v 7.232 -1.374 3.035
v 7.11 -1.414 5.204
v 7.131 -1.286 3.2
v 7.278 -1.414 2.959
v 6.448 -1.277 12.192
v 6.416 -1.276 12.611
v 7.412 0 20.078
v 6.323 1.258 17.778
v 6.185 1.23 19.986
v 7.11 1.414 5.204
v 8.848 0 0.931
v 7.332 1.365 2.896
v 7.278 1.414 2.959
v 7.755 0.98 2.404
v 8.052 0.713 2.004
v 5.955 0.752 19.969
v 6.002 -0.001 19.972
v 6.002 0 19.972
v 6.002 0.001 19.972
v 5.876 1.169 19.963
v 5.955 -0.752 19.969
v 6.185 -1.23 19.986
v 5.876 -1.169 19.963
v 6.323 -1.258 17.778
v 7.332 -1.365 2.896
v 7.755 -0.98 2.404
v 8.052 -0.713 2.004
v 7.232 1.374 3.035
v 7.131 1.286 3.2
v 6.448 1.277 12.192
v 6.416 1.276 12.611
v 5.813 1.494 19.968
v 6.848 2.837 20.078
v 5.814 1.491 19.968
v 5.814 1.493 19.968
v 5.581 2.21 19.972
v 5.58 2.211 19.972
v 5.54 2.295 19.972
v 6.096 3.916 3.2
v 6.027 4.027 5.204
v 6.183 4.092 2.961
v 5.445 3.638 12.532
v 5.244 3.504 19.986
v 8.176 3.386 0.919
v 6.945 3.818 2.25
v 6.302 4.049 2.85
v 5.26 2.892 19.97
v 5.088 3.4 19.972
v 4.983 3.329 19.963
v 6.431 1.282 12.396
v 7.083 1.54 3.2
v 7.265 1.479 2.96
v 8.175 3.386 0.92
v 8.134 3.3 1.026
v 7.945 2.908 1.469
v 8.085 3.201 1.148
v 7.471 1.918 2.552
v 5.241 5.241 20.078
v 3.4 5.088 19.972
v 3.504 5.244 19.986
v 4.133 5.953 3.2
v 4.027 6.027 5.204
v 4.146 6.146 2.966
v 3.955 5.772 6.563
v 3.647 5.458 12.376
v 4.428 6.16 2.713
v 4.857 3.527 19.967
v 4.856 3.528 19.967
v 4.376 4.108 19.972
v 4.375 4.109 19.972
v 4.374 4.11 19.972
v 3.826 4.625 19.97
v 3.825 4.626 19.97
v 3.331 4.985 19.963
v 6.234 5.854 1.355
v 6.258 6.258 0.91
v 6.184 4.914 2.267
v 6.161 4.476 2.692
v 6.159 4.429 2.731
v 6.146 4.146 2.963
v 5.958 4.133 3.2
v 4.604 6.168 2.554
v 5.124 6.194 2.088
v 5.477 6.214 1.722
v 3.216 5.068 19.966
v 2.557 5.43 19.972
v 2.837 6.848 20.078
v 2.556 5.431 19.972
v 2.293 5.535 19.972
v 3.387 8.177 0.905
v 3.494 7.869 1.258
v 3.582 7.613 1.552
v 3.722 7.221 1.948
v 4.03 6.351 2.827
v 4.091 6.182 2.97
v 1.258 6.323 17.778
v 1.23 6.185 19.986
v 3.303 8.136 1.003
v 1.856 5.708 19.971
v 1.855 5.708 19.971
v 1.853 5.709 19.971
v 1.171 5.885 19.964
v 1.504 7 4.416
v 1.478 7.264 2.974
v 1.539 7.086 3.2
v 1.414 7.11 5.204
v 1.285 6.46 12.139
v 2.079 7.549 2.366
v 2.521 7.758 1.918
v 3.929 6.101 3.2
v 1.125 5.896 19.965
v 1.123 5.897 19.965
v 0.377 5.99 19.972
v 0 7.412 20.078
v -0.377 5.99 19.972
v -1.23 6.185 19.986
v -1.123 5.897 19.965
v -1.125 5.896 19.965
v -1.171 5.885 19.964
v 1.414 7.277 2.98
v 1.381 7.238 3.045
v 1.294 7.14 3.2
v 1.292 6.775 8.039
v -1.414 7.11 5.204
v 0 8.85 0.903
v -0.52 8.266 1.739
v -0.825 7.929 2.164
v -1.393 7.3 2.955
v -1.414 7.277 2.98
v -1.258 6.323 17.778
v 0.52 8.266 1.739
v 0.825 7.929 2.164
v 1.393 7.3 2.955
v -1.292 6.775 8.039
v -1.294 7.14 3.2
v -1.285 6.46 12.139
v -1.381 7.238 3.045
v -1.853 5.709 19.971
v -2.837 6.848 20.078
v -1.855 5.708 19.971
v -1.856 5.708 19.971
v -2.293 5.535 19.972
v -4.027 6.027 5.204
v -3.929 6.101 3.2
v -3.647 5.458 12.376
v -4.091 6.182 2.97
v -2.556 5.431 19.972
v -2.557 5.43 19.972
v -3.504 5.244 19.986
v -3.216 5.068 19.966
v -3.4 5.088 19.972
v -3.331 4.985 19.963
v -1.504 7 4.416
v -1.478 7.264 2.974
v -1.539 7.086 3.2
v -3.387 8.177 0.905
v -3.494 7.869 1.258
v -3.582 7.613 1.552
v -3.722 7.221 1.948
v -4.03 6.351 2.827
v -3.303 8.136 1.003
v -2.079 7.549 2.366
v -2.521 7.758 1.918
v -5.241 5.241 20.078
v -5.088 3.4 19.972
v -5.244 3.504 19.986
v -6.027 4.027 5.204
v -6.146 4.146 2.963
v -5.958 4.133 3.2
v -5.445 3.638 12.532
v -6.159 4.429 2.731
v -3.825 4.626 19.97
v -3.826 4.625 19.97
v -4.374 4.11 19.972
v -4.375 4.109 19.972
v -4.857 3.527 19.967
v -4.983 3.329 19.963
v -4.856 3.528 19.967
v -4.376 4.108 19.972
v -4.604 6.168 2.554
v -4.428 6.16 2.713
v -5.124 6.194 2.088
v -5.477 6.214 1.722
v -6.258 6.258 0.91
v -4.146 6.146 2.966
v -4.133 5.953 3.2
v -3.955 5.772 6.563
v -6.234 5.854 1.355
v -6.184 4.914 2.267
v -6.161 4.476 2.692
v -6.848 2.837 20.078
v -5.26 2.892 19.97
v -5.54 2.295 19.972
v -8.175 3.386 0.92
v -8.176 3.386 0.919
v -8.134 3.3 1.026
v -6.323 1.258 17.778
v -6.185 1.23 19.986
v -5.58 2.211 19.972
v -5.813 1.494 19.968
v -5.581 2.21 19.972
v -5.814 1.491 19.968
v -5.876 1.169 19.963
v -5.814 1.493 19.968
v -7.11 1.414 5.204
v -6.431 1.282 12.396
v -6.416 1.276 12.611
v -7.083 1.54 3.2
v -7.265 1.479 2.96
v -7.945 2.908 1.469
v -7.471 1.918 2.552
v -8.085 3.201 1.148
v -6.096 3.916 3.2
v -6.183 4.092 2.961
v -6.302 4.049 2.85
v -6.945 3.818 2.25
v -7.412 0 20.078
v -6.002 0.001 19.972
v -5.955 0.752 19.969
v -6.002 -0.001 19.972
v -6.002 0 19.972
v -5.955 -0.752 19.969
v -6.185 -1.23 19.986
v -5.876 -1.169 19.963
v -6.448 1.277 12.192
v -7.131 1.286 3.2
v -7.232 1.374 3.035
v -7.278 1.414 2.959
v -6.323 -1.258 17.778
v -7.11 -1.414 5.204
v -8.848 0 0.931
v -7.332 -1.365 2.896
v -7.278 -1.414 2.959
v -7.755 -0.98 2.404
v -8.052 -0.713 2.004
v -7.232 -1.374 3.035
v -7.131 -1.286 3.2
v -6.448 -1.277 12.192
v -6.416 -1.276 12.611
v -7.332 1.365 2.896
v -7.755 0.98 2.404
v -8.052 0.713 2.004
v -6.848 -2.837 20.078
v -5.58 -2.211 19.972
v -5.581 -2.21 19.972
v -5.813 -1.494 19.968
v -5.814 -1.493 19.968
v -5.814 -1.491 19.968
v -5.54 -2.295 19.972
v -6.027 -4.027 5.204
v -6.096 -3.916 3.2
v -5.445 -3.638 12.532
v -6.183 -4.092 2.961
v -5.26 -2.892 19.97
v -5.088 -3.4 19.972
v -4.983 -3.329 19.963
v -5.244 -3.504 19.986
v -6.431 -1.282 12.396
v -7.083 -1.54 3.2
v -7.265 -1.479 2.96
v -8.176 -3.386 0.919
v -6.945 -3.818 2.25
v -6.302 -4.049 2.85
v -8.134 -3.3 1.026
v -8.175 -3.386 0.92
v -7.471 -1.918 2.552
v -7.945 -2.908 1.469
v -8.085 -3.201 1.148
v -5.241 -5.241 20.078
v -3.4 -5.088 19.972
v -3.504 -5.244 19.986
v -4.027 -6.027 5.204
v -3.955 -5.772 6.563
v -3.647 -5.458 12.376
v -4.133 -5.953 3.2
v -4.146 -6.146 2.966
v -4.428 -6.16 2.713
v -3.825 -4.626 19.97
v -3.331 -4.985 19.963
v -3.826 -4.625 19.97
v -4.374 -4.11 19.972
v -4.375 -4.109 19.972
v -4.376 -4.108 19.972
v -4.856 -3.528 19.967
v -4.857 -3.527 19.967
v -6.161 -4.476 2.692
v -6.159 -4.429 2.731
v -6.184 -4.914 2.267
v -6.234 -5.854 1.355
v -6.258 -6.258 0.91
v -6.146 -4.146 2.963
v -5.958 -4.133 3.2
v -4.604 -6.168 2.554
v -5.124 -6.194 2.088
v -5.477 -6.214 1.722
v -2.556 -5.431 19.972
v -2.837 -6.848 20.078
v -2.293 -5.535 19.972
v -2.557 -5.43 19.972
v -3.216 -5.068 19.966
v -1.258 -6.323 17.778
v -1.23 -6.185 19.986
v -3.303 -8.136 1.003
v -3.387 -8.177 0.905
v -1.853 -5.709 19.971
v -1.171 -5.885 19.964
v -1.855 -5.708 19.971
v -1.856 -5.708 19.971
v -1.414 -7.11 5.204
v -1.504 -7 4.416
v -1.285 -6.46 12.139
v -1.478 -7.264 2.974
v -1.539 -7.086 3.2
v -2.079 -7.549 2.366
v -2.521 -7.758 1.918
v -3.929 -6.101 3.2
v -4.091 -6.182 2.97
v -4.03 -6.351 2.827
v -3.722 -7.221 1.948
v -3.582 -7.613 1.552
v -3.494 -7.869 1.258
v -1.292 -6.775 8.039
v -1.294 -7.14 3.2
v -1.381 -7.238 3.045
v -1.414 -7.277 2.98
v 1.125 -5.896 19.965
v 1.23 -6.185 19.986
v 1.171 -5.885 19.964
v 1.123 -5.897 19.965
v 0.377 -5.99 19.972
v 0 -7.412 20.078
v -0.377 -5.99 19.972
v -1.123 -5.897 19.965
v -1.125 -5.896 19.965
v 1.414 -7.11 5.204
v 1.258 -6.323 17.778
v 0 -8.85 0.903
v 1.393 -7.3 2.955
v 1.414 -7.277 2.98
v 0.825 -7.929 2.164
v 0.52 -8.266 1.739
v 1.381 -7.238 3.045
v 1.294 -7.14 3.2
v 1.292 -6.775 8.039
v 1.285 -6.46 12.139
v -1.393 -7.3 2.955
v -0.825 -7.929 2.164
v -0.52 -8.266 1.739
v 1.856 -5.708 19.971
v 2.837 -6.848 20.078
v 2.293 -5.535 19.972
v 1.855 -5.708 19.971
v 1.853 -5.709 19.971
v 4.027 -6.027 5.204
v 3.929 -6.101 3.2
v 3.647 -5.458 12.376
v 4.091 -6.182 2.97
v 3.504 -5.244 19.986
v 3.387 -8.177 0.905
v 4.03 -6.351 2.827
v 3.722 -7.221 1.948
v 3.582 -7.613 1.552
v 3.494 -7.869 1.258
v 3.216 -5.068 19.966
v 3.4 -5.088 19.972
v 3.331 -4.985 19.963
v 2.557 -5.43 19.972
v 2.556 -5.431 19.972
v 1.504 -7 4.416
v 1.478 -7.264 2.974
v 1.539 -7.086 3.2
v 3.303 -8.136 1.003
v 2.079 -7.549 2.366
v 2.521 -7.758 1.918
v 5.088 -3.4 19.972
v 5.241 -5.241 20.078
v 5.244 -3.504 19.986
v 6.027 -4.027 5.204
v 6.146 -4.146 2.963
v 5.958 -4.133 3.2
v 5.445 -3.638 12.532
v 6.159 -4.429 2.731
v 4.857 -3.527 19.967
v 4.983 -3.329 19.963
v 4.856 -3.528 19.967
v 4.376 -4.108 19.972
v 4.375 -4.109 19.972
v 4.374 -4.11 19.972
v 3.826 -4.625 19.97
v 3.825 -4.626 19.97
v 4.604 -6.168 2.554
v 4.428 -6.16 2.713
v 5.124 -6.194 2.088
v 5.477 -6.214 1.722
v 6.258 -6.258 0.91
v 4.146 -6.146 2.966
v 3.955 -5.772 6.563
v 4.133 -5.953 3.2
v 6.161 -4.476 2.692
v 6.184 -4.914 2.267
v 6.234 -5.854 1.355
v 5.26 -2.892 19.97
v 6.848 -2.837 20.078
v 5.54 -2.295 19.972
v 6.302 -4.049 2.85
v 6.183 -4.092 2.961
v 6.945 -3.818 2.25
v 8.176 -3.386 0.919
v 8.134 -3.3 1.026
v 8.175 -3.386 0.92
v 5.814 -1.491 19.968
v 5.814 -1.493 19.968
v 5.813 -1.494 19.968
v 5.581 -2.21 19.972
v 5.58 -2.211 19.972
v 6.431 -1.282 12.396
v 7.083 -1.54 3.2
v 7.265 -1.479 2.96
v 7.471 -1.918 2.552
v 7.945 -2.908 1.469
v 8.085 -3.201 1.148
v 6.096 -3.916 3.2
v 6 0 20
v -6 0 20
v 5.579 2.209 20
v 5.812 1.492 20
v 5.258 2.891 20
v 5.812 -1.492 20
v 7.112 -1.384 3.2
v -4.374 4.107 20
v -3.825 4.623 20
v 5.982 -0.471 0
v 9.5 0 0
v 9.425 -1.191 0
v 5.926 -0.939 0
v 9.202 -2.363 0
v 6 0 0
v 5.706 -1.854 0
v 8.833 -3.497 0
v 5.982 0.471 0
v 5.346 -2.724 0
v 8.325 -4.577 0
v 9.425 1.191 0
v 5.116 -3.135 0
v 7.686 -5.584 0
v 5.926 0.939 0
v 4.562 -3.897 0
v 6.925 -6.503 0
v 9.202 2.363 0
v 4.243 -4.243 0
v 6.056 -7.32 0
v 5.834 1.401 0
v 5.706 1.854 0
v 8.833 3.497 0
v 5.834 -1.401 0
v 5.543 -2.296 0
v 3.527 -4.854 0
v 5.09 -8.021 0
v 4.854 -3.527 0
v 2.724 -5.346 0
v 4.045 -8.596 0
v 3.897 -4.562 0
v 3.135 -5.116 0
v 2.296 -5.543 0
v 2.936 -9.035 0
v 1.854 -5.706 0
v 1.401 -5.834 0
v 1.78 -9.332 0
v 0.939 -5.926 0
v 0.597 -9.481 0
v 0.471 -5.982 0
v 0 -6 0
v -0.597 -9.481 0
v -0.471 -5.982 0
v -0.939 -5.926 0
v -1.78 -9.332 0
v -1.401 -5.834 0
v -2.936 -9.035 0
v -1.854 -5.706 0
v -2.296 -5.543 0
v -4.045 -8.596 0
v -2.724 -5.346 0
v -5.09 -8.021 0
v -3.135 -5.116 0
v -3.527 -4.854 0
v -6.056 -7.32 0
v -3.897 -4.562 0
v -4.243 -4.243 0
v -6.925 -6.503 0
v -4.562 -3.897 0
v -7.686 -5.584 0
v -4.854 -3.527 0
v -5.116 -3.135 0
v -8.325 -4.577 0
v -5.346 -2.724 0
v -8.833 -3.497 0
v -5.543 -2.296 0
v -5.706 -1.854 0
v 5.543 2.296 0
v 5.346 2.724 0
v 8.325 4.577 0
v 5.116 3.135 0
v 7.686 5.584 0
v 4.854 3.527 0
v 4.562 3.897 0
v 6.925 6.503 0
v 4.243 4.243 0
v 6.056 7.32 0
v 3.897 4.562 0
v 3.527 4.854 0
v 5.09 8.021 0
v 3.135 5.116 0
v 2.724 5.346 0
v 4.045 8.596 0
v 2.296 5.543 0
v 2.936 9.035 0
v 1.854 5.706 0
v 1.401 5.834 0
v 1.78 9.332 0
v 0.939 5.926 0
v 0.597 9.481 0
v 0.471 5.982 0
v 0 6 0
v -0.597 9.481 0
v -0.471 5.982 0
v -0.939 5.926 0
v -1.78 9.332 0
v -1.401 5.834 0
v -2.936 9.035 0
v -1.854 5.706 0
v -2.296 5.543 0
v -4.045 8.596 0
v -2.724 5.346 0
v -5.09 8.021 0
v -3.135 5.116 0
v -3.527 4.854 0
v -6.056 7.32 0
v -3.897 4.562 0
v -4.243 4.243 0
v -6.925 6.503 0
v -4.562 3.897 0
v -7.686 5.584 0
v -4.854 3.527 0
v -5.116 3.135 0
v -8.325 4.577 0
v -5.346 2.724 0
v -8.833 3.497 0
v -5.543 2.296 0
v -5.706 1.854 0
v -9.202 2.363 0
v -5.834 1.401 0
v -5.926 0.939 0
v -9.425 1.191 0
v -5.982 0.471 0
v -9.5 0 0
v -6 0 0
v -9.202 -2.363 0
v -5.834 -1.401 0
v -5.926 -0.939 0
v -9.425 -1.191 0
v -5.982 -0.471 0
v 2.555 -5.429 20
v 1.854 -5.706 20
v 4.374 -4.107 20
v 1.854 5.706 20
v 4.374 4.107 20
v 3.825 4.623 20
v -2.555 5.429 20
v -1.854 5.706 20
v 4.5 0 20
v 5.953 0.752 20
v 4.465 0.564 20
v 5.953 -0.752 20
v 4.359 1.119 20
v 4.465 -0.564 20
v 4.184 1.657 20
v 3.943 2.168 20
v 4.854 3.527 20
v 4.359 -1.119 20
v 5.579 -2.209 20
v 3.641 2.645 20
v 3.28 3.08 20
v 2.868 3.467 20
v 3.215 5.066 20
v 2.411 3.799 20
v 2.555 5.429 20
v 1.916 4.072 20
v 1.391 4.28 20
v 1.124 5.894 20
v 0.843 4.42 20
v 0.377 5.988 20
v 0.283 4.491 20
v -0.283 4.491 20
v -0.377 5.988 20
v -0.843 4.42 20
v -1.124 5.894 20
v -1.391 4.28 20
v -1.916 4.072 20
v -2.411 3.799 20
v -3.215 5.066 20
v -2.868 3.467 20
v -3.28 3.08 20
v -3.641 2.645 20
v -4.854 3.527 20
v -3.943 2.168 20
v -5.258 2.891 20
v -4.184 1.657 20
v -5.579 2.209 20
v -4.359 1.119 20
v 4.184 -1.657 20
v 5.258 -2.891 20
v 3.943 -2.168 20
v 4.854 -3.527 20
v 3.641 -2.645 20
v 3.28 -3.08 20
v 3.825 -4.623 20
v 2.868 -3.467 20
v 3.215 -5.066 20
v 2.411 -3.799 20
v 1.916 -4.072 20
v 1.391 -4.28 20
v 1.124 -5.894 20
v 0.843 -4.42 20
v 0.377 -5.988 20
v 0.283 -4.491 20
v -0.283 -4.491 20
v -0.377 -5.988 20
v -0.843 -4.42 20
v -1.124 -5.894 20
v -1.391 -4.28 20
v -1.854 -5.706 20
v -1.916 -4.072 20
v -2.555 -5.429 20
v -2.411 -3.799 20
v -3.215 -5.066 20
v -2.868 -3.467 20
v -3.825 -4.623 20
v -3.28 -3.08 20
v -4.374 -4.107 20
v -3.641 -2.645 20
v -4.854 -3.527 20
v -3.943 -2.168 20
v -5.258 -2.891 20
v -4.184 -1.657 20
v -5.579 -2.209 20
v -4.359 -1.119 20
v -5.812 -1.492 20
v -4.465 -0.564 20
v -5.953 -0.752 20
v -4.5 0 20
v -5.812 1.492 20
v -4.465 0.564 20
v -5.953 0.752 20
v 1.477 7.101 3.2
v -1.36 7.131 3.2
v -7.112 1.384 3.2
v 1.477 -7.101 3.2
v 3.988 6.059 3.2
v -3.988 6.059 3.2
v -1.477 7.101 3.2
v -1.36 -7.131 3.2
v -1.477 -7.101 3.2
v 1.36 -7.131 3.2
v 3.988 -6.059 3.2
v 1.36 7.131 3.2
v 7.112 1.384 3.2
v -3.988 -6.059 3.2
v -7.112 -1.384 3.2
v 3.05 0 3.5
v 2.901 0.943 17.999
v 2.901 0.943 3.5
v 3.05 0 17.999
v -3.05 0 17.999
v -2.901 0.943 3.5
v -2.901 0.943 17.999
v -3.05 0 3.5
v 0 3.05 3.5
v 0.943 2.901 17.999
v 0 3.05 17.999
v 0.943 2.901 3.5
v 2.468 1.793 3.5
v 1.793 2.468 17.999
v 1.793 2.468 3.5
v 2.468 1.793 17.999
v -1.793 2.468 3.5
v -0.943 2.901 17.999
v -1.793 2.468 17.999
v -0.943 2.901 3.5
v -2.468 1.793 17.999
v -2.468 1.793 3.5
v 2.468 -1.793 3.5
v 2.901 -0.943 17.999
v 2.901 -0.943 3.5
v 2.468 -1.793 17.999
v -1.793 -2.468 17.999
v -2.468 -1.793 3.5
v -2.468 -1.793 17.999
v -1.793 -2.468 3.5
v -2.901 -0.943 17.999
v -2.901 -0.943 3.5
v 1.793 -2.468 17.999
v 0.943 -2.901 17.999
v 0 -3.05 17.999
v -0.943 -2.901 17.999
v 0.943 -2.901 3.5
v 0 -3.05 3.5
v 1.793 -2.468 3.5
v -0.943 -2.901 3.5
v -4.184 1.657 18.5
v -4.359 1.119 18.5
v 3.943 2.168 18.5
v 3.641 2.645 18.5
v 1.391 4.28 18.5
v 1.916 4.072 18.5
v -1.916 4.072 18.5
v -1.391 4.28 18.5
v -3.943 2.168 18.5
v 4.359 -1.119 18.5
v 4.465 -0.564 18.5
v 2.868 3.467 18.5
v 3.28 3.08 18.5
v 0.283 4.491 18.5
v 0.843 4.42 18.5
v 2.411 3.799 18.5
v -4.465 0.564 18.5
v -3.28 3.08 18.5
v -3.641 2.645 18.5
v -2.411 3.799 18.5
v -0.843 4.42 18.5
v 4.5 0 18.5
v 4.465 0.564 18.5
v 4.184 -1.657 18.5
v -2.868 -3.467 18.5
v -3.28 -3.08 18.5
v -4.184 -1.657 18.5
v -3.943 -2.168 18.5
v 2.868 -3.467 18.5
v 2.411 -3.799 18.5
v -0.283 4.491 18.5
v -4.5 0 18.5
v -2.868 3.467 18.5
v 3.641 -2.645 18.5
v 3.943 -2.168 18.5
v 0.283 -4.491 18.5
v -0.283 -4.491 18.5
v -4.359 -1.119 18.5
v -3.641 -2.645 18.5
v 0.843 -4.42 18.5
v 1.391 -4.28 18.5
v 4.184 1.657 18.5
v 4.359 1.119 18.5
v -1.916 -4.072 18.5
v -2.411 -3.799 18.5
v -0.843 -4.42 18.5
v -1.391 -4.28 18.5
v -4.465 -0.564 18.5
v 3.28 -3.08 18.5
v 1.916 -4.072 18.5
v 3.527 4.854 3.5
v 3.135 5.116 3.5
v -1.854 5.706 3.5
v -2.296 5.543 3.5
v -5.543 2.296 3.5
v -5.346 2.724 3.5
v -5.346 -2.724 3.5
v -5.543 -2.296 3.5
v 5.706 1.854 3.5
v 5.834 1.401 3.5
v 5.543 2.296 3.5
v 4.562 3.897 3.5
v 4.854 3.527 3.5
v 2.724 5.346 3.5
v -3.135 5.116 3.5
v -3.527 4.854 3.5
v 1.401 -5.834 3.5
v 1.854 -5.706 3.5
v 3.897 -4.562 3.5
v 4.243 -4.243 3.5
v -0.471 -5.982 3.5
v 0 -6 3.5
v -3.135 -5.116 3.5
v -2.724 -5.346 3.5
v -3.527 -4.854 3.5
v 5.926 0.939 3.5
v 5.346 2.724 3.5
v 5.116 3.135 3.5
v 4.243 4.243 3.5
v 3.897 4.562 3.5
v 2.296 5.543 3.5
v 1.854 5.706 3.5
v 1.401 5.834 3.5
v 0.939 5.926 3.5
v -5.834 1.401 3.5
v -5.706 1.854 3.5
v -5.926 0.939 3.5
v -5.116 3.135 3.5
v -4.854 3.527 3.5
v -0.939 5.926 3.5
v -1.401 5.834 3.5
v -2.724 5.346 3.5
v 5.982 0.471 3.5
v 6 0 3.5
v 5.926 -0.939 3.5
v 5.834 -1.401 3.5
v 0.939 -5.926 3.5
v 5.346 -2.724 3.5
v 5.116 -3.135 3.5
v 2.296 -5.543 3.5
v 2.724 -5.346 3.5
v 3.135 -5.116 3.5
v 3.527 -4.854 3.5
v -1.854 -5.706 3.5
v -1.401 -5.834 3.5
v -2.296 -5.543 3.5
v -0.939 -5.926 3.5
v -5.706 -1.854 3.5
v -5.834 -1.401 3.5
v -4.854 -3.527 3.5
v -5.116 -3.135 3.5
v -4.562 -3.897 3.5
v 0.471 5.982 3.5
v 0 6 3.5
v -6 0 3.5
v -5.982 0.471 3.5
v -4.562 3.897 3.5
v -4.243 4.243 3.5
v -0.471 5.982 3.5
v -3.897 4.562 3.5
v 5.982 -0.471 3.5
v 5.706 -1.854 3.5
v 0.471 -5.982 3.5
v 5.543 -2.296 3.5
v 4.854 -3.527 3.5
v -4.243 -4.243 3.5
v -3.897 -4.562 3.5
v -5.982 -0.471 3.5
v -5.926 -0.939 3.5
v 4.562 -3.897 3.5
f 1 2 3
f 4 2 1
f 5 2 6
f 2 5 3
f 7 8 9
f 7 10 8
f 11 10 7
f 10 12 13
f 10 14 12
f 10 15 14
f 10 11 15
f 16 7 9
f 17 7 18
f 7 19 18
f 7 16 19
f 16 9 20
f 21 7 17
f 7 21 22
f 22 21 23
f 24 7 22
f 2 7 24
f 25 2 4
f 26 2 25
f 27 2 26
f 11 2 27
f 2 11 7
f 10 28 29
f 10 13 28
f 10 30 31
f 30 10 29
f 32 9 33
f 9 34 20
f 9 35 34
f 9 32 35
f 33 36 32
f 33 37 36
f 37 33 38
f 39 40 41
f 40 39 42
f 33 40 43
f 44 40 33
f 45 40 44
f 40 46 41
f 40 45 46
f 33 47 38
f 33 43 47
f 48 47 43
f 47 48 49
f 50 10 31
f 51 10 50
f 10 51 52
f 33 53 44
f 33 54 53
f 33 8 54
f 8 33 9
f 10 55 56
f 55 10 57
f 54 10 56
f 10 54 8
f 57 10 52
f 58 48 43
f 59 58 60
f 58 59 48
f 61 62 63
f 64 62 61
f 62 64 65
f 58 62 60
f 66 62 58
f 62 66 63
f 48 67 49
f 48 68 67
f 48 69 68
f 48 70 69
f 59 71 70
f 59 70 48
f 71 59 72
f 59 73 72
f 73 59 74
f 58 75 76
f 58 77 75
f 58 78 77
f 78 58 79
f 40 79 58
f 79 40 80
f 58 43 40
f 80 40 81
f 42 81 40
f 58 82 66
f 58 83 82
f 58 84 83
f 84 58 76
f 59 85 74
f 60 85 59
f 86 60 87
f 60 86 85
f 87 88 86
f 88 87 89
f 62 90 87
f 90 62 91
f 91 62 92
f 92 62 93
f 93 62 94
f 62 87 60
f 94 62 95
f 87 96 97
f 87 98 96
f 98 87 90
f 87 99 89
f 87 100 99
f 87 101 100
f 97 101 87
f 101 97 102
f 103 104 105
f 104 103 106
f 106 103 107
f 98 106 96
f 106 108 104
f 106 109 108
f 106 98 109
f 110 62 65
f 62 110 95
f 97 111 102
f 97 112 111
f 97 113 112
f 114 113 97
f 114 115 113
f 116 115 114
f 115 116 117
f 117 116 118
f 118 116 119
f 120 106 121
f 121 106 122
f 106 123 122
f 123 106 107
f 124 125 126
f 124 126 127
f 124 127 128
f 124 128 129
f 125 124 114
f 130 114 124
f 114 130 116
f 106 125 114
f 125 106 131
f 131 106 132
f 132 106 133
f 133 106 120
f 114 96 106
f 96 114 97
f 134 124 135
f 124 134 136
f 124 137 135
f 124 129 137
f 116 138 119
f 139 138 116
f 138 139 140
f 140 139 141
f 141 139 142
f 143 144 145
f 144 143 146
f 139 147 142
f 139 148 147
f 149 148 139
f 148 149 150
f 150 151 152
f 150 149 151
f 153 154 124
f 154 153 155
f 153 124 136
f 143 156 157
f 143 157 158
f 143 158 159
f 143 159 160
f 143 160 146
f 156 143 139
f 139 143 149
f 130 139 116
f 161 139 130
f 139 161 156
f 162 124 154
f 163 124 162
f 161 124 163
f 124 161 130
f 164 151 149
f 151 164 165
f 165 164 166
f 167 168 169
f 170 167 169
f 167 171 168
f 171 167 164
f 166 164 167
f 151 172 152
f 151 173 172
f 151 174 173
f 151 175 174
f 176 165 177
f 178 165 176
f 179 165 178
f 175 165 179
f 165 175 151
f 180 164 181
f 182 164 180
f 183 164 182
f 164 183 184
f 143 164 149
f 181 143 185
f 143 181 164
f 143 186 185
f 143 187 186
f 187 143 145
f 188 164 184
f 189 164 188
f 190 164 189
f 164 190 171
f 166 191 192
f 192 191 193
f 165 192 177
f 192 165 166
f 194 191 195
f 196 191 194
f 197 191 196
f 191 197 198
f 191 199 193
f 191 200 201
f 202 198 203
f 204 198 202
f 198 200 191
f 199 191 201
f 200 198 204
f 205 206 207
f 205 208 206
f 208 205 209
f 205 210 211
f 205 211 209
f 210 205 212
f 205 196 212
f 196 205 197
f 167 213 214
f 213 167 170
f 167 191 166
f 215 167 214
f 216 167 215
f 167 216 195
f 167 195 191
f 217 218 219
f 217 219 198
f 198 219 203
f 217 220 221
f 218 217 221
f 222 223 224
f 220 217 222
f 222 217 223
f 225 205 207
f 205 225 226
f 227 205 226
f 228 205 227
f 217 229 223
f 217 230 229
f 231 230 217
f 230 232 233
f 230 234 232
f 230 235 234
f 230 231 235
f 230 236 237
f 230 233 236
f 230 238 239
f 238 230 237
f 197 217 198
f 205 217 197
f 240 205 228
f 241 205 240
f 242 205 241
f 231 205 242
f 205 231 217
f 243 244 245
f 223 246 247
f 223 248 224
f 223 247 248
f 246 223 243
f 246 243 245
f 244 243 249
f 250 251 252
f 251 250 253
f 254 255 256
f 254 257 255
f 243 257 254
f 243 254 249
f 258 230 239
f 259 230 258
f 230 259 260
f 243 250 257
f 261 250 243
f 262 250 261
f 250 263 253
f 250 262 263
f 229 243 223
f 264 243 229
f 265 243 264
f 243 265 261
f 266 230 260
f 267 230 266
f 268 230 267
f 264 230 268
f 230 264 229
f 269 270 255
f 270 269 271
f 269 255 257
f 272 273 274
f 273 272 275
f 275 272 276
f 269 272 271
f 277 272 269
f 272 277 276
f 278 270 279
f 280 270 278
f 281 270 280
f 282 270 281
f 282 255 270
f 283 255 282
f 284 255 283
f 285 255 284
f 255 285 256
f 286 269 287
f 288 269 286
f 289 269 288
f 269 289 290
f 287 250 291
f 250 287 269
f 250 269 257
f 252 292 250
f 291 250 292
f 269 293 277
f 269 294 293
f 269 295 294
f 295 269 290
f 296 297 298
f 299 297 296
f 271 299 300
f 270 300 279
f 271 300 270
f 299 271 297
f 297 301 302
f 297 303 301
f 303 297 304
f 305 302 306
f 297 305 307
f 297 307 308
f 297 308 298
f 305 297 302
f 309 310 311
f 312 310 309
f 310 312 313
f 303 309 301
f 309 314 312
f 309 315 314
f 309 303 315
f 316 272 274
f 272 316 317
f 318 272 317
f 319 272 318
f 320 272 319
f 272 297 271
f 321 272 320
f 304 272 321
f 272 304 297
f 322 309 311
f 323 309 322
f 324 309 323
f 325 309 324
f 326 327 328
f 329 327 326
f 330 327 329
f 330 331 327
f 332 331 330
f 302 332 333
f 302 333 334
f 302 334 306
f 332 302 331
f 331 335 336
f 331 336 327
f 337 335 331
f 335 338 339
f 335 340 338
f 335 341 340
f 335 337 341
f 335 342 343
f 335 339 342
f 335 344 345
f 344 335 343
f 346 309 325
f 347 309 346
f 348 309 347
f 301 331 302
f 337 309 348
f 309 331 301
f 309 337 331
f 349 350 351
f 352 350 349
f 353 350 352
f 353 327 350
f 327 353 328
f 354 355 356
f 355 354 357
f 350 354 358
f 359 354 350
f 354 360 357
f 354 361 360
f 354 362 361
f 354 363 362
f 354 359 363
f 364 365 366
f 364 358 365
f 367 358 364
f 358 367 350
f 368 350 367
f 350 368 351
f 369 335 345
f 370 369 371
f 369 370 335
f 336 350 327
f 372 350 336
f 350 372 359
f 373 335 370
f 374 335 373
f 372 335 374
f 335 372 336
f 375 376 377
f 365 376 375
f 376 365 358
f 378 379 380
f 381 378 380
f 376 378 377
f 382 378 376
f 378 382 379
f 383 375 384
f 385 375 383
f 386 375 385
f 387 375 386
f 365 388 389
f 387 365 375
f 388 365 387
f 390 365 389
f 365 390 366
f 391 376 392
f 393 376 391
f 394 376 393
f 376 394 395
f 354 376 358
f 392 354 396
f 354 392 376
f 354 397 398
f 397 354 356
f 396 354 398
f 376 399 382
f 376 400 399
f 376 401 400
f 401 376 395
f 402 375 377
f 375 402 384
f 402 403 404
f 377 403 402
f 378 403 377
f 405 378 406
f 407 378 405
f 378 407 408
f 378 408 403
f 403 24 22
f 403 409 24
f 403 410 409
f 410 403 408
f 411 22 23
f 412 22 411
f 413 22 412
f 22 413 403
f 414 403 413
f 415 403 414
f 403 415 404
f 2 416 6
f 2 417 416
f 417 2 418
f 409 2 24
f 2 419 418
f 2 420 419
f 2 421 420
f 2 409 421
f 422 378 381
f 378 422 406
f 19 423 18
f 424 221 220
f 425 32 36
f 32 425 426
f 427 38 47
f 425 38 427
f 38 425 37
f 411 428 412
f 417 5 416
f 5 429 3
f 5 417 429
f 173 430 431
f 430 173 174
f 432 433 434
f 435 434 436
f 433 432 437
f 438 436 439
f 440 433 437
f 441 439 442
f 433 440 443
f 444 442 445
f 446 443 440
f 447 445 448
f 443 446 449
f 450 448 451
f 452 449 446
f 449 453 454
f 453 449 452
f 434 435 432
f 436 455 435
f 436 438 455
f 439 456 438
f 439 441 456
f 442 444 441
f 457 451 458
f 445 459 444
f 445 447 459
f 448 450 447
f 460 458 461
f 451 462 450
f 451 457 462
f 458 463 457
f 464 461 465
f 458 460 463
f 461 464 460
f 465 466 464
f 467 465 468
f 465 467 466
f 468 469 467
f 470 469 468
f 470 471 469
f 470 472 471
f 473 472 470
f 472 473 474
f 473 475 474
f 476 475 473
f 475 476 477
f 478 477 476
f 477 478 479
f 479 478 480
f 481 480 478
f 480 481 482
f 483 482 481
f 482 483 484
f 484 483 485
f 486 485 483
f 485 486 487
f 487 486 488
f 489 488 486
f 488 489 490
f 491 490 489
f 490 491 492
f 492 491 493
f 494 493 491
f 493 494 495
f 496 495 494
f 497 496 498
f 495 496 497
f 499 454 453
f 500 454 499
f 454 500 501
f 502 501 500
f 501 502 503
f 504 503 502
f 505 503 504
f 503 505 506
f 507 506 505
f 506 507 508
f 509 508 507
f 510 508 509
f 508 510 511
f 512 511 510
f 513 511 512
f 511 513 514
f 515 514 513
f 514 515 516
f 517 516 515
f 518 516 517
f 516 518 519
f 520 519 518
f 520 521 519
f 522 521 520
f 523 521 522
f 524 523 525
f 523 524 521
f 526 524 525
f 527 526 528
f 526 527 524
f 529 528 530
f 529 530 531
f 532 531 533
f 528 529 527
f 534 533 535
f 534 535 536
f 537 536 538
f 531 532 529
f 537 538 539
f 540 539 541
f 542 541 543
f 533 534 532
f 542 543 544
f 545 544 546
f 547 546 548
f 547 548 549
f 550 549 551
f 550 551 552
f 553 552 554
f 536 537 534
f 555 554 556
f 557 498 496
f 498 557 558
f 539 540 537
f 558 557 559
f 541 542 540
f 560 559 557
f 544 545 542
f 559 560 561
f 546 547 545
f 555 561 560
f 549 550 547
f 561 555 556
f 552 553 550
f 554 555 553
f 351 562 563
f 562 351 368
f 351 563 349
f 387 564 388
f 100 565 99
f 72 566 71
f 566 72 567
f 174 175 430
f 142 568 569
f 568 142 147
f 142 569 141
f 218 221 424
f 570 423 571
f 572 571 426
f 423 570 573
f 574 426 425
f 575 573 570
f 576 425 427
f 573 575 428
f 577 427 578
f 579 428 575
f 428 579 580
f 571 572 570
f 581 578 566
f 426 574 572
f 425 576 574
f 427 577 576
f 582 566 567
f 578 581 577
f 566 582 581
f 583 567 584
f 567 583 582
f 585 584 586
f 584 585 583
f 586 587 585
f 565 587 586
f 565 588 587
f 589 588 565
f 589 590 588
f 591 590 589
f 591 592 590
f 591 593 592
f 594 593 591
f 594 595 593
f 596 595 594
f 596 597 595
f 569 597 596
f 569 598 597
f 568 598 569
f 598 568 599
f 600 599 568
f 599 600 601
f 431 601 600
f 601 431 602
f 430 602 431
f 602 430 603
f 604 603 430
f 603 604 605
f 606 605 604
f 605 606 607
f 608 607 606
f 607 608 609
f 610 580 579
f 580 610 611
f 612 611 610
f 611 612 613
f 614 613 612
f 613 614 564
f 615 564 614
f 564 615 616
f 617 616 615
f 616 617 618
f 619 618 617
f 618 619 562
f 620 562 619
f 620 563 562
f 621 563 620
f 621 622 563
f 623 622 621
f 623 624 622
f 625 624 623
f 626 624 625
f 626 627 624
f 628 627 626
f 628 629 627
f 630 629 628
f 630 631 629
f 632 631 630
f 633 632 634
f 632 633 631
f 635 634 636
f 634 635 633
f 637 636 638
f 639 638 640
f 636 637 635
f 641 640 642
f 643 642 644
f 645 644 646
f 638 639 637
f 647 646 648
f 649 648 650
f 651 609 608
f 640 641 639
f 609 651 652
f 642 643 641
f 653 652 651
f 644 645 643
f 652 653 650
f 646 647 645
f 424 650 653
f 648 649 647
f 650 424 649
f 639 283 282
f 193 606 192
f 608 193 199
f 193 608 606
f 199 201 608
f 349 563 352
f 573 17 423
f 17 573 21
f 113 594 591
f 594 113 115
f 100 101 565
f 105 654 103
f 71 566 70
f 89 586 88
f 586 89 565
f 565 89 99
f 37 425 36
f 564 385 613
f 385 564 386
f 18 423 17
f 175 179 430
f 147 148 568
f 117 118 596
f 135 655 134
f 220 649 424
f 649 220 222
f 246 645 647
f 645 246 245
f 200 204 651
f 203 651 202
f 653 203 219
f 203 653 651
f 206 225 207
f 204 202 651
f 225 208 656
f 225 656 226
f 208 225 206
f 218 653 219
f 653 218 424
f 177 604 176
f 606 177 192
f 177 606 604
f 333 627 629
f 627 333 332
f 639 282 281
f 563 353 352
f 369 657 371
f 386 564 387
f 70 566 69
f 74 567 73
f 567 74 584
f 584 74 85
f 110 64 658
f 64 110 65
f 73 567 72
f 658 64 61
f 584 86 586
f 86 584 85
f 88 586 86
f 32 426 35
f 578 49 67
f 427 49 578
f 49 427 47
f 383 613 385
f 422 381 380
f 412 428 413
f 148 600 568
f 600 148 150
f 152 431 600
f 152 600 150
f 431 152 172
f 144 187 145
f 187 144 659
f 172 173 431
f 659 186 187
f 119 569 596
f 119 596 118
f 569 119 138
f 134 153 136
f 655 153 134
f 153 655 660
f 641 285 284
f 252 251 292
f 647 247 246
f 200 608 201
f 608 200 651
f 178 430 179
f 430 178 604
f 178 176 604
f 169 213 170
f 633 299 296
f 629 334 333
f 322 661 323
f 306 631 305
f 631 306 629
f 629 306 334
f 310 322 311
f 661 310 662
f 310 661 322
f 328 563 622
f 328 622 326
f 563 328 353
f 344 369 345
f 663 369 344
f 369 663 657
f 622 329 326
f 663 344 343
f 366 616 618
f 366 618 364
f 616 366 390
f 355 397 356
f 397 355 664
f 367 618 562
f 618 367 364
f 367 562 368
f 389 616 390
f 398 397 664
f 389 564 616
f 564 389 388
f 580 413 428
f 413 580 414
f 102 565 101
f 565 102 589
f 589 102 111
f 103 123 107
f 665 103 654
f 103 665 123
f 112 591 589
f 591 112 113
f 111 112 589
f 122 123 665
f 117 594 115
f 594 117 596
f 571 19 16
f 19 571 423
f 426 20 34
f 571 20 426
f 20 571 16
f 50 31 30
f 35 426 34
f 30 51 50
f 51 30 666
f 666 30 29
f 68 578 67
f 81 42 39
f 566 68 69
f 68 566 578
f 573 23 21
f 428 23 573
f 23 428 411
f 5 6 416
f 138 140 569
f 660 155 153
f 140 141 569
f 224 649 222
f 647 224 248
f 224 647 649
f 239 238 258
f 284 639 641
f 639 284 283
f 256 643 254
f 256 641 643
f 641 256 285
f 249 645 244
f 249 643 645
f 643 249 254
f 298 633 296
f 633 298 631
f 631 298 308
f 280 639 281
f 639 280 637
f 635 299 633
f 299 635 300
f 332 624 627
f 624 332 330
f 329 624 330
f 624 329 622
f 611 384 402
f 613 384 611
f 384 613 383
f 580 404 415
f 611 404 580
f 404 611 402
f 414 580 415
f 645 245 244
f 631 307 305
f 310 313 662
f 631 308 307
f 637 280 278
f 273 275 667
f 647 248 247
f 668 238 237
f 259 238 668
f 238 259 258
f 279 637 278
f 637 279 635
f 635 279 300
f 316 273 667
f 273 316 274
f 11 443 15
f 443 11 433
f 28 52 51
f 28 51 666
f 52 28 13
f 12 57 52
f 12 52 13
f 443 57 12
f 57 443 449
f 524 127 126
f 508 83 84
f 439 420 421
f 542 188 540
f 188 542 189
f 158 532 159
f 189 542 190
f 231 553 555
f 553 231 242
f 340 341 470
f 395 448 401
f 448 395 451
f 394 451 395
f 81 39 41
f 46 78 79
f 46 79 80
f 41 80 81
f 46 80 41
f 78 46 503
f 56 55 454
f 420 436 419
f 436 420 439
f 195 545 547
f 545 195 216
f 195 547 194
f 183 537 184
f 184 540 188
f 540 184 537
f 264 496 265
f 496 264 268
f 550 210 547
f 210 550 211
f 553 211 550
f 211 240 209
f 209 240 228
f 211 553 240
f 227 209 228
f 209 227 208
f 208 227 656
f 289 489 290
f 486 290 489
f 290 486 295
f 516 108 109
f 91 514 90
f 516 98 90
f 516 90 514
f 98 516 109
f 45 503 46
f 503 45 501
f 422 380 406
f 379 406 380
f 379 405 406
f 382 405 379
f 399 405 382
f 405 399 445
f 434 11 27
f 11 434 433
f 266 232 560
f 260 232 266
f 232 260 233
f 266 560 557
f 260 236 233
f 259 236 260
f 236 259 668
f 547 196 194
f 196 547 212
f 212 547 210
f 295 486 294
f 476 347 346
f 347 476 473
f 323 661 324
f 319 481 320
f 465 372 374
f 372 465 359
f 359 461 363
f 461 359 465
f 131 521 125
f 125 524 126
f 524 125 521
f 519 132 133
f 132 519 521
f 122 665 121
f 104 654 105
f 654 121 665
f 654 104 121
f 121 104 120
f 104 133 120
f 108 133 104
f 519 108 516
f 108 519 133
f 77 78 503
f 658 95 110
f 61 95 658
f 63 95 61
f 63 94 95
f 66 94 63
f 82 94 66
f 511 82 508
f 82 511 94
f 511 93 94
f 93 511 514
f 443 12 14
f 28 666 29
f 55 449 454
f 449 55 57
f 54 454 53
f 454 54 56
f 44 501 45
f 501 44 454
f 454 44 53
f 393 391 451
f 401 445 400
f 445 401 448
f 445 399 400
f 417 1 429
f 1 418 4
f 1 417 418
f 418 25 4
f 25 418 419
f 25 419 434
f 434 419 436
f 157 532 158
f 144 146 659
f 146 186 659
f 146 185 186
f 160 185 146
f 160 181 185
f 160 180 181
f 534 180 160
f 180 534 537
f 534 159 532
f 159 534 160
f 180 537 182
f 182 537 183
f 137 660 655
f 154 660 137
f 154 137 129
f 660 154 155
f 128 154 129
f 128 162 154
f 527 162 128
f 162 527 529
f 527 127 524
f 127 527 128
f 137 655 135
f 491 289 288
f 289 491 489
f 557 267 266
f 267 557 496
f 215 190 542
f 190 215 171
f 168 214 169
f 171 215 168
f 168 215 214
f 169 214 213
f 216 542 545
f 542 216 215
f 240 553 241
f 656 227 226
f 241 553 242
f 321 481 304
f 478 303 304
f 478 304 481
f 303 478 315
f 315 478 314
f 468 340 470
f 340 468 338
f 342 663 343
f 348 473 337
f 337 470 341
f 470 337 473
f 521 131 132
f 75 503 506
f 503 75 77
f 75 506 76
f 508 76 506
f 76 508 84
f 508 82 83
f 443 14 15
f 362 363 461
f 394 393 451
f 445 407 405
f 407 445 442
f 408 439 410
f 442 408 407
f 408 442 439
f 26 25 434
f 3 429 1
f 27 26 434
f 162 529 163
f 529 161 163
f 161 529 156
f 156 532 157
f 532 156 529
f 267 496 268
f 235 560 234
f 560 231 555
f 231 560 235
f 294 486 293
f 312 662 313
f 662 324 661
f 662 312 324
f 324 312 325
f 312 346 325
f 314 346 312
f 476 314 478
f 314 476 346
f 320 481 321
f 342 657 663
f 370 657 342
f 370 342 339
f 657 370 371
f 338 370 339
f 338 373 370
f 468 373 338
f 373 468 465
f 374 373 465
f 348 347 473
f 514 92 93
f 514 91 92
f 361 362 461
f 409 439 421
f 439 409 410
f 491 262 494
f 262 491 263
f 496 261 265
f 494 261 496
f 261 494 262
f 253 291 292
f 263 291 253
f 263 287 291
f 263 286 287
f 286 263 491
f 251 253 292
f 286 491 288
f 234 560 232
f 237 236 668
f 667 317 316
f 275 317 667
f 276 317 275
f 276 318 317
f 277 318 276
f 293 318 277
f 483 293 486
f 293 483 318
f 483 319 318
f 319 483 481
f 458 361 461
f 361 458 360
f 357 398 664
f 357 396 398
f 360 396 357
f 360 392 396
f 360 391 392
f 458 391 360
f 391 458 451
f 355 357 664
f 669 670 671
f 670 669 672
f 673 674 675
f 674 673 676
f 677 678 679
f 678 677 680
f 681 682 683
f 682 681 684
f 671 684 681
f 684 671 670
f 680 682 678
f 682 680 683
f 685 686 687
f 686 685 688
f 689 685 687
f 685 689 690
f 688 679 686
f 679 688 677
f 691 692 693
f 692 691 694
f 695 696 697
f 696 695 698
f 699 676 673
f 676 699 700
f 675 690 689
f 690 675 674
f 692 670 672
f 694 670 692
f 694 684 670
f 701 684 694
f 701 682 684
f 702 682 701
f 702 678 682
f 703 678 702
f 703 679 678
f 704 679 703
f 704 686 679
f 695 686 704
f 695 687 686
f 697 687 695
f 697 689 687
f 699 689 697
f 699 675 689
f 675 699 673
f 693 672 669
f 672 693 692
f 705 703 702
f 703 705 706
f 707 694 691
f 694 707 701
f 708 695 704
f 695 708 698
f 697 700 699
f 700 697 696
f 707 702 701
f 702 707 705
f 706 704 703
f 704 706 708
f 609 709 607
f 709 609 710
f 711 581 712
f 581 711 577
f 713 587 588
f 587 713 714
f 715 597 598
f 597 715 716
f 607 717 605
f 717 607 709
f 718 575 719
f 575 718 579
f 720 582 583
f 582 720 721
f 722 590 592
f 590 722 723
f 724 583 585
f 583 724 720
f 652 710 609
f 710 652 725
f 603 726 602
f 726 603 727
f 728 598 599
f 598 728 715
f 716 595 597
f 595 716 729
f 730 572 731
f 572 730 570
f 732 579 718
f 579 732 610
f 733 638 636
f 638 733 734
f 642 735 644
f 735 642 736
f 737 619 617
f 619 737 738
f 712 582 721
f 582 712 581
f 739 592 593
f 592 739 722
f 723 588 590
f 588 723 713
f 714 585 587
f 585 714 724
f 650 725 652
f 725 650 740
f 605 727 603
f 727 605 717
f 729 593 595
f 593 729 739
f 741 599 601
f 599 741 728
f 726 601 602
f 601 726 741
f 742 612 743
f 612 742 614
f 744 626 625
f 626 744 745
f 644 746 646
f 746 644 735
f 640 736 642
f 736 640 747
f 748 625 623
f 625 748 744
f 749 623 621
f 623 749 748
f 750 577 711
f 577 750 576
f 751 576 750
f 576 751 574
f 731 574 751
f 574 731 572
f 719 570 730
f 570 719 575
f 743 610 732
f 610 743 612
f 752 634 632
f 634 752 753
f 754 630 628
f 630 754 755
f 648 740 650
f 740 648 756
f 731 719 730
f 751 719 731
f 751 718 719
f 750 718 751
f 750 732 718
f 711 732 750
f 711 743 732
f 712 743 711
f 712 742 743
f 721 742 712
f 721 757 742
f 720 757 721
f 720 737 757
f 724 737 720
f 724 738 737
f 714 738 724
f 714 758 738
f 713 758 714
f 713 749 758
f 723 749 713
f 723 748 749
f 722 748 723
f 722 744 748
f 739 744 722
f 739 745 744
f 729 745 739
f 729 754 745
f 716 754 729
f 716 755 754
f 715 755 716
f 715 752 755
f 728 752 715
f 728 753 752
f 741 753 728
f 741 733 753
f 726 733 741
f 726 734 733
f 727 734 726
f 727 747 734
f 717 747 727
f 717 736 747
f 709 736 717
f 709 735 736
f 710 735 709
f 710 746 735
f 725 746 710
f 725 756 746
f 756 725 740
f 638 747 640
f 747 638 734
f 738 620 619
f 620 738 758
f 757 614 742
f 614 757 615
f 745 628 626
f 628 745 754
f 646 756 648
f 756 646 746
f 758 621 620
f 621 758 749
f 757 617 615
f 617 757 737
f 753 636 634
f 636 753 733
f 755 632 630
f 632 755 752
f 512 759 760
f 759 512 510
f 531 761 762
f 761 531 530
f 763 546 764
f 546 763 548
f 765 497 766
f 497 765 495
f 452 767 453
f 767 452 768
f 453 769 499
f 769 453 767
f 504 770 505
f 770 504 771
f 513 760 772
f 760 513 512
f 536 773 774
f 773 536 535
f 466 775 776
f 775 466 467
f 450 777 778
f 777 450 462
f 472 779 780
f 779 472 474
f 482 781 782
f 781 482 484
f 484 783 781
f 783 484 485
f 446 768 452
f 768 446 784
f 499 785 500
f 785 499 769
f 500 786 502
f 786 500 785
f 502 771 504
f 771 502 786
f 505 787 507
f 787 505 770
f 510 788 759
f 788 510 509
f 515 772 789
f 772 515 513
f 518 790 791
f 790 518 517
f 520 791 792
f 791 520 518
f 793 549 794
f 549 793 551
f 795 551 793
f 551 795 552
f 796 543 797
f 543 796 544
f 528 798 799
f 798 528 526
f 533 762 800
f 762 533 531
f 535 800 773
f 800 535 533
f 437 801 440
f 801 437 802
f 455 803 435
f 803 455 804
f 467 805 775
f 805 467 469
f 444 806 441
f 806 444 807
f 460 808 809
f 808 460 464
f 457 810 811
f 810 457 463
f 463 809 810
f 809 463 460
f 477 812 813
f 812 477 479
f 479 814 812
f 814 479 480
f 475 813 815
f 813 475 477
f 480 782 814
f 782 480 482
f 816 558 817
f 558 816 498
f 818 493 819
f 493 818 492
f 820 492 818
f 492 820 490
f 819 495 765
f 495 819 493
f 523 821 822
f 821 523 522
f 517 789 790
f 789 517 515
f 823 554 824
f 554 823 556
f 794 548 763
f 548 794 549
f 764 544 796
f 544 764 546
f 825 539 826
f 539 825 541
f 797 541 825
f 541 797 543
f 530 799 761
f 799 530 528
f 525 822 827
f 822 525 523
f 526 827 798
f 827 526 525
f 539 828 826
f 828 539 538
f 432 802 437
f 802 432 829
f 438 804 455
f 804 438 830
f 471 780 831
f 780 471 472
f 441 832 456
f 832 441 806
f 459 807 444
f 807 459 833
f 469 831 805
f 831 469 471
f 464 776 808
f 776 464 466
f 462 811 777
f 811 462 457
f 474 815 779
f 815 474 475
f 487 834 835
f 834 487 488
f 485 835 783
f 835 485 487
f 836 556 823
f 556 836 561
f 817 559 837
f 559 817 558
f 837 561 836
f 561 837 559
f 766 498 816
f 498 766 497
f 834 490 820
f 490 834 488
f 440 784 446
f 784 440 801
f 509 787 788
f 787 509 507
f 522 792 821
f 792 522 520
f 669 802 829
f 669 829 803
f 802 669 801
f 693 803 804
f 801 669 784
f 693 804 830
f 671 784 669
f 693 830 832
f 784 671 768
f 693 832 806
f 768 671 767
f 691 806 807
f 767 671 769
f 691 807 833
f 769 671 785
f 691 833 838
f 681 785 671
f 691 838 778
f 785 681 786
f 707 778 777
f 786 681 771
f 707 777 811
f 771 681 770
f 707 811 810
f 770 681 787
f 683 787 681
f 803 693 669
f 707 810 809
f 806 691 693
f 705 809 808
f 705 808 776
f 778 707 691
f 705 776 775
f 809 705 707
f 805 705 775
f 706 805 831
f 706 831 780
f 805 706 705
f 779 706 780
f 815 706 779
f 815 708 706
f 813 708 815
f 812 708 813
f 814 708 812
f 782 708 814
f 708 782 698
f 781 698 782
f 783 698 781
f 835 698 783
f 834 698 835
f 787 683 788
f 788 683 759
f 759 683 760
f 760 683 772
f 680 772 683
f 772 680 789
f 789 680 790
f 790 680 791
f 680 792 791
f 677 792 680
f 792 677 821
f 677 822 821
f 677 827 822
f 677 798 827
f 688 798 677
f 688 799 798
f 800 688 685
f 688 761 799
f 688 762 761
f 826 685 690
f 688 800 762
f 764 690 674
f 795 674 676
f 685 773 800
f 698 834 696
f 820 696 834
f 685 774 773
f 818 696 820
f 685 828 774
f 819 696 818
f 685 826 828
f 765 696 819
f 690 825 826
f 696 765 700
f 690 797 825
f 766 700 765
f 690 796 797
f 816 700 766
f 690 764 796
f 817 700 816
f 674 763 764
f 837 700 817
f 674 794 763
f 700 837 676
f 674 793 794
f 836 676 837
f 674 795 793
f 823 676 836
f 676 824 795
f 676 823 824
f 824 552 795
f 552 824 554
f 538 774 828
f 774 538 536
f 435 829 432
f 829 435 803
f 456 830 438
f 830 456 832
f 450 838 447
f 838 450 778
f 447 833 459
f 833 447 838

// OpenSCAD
/*
*******************************************
Objekt Info: Poti Drehknopf

*******************************************
Version: 16.01.2023 khf
*******************************************
*/

//***************   Auswahl   *************
// Form der Oberseite des Knopfes.  Der Typ "Einbau" kann lackiert werden.
CapType = 1;	// [0:Flach, 1:Einbau, 2:Dome]

// Möchtest du einen großen StilZeiger?
TimerKnob=0;	// [0:Nein, 1:Ja]

// Möchtest du eine Markierung oben, um die Richtung anzuzeigen?
Pointer1 = 0;	// [0:Nein, 1:Ja]

// Möchtest du einen Richtungszeiger?
Pointer2 = 0;	// [0:Nein, 1:Ja]

// Willst du einen Rändelung um den Knopf?
Knurled = 1;	// [0:Nein, 1:Ja]

//***************   Libraries  ************

//keine

//*****************************************

//***************  Parameter   *************
$fn=80;

// Loch-Durchmesser in mm.
HoleDiameter = 6.1;

// Tiefe des Lochs im Boden (in mm). 
HoleDepth = 18;

// Wenn du ein D-förmiges Loch wünscht, stelle die Dicke auf der flachen Seite (in mm) ein.  Größere Werte für die Ebene machen das Loch kleiner.
HoleFlatThickness = 0;

// Höhe (in mm).  Wenn die Kuppelkappe ausgewählt ist, ist sie nicht in der Höhe enthalten.  Auch die Wellenlänge wird nicht gezählt.
KnobHeight = 20;

// Durchmesser des Knopfes in mm.  
KnobDiameter = 15;

// 0 = Verjüngung
TaperPercentage = 20;		// [0:0%, 10:10%, 20:20%, 30:30%, 40:40%, 50:50%]

// Breite des Rings "Dial" (in mm).  0= keine RIng
RingWidth = 2;

// Die Anzahl der Markierungen auf dem Zifferblatt.  0 = keine Markierungen   (RingWidth muss ungleich Null sein.)
RingMarkings = 0;

// Durchmesser des Lochs für die Befestigungsschraube in mm.  0 = kein Loch
ScrewHoleDiameter = 0;

//  Länge der Welle auf der Unterseite des Knopfes (in mm).  0 = keine Welle
ShaftLength = 0;

// Durchmesser der Welle auf der Unterseite des Knopfes in mm.  (ShaftLength größer Null sein.)
ShaftDiameter = 10;

// Möchtest du eine Kerbe in der Welle?  Es kann für einen Einpressknopf verwendet werden (anstelle einer Befestigungsschraube).  (ShaftLength größer Null sein.)
NotchedShaft = 0;	// [0:No, 1:Yes]


//*****************************************

//**************   Programm  **************

//////////////////////////
//Erweiterte Einstellungen
//////////////////////////

RingThickness = 5*1;
DivotDepth = 1.5*1;
MarkingWidth = 1.5*1;
DistanceBetweenKnurls = 3*1;
TimerKnobConst = 1.8*1;

//////////////////////////
//Berechnungen
//////////////////////////

PI=3.14159265*1;
KnobMajorRadius = KnobDiameter/2;
KnobMinorRadius = KnobDiameter/2 * (1 - TaperPercentage/100);
KnobRadius = KnobMinorRadius + (KnobMajorRadius-KnobMinorRadius)/2;
KnobCircumference = PI*KnobDiameter;
Knurls = round(KnobCircumference/DistanceBetweenKnurls);
Divot=CapType;

TaperAngle=asin(KnobHeight / (sqrt(pow(KnobHeight, 2) +
		pow(KnobMajorRadius-KnobMinorRadius,2)))) - 90;

DivotRadius = KnobMinorRadius*.4;

difference() {
union()
{
translate([0, 0, (ShaftLength==0)? 0 : ShaftLength-0.001])
difference()
{
union()
{
	// Primary knob cylinder
	cylinder(h=KnobHeight, r1=KnobMajorRadius, r2=KnobMinorRadius,
			$fn=50);
	
	if (Knurled)
		for (i=[0 : Knurls-1])
			rotate([0, 0, i * (360/Knurls)])
				translate([KnobRadius, 0, KnobHeight/2])
					rotate([0, TaperAngle, 0]) rotate([0, 0, 45])
						cube([2, 2, KnobHeight+.001], center=true);

 	if (RingMarkings>0)
		for (i=[0 : RingMarkings-1])
			rotate([0, 0, i * (360/RingMarkings)])
				translate([KnobMajorRadius + RingWidth/2, 0, 1])
					cube([RingWidth*.5, MarkingWidth, 2], center=true);		
	
	if (Pointer2==1)
		translate([KnobRadius, 0, KnobHeight/2-2])
			rotate([0, TaperAngle, 0])
				cube([8, 3, KnobHeight], center=true);		

	if (RingWidth>0)
		translate([0, 0, RingThickness/2])
			cylinder(r1=KnobMajorRadius + RingWidth, r2=KnobMinorRadius,
					h=RingThickness, $fn=50, center=true);

	if (Divot==2)
		translate([0, 0, KnobHeight])
			difference()
			{
				scale([1, 1, 0.5])
					sphere(r=KnobMinorRadius, $fn=50, center=true);

				translate([0, 0, 0-(KnobMinorRadius+.001)])
					cube([KnobMinorRadius*2.5, KnobMinorRadius*2.5,
							KnobMinorRadius*2], center=true);
			}

	if (TimerKnob==1) intersection()
		{
			translate([0, 0, 0-(KnobDiameter*TimerKnobConst) + KnobHeight])
			sphere(r=KnobDiameter*TimerKnobConst, $fn=80, center=true);		
	
			translate([0-(KnobDiameter*TimerKnobConst)*0.1, 0,
					KnobHeight/2])
				scale([1, 0.5, 1])
					cylinder(h=KnobHeight, r=(KnobDiameter*TimerKnobConst) *
							0.8, $fn=3, center=true);
		}
}

// Zeiger1
if (Pointer1==1)
	translate([KnobMinorRadius*.55, 0, KnobHeight + DivotRadius*.6])
		sphere(r=DivotRadius, $fn=40);

// Divot1: Zentrierter zylynischer Divot
if (Divot==1)
	translate([0, 0, KnobHeight])
		cylinder(h=DivotDepth*2, r=KnobMinorRadius-1.5, $fn=50,
				center=true);

if (ShaftLength==0)
{
	// Loch für die Welle
	translate([0, 0, HoleDepth/2 - 0.001])
		difference()
		{
			cylinder(r=HoleDiameter/2, h=HoleDepth, $fn=20,
					center=true);
	
			// D-förmiges Loch
			translate([(0-HoleDiameter)+HoleFlatThickness, 0, 0])
				cube([HoleDiameter, HoleDiameter, HoleDepth+.001],
						center=true);
		}
	
	// Loch für die Befestigungsschraube
	if (ScrewHoleDiameter>0)
		translate([0 - (KnobMajorRadius+RingWidth+1)/2, 0,
				HoleDepth/2])
			rotate([0, 90, 0])
			cylinder(h=(KnobMajorRadius+RingWidth+1),
					r=ScrewHoleDiameter/2, $fn=20, center=true);
}

// Stelle sicher, dass die unteren Enden bei z=0 sind
translate([0, 0, -10])
	cube([(KnobMajorRadius+RingWidth) * 3,
			(KnobMajorRadius+RingWidth) * 3, 20], center=true);
}

if (ShaftLength>0)
	difference()
	{
		translate([0, 0, ShaftLength/2])
			cylinder(h=ShaftLength, r=ShaftDiameter/2, $fn=20,
					center=true);

		if (NotchedShaft==1)
		{
			cube([HoleDiameter/2, ShaftDiameter*2, ShaftLength],
					center=true);
		}

		// Loch für die Welle
		translate([0, 0, HoleDepth/2 - 0.001])
			difference()
			{
				cylinder(r=HoleDiameter/2, h=HoleDepth, $fn=20,
						center=true);
		
				// D-förmiges Loch
				translate([(0-HoleDiameter)+HoleFlatThickness, 0, 0])
					cube([HoleDiameter, HoleDiameter, HoleDepth+.001],
							center=true);
			}
		
		// Loch für die Befestigungsschraube
		if (ScrewHoleDiameter>0)
			translate([0 - (KnobMajorRadius+RingWidth+1)/2, 0,
					HoleDepth/2])
				rotate([0, 90, 0])
				cylinder(h=(KnobMajorRadius+RingWidth+1),
						r=ScrewHoleDiameter/2, $fn=20, center=true);
	}
}


translate(v = [0, 0, 1]) { 
cylinder(h = 5, r1 = 6, r2 = 6, center = true);
}
translate(v = [0, 0, 4]) { 
cylinder(h = 6, r1 = 3, r2 = 3, center = true);
    }
}
